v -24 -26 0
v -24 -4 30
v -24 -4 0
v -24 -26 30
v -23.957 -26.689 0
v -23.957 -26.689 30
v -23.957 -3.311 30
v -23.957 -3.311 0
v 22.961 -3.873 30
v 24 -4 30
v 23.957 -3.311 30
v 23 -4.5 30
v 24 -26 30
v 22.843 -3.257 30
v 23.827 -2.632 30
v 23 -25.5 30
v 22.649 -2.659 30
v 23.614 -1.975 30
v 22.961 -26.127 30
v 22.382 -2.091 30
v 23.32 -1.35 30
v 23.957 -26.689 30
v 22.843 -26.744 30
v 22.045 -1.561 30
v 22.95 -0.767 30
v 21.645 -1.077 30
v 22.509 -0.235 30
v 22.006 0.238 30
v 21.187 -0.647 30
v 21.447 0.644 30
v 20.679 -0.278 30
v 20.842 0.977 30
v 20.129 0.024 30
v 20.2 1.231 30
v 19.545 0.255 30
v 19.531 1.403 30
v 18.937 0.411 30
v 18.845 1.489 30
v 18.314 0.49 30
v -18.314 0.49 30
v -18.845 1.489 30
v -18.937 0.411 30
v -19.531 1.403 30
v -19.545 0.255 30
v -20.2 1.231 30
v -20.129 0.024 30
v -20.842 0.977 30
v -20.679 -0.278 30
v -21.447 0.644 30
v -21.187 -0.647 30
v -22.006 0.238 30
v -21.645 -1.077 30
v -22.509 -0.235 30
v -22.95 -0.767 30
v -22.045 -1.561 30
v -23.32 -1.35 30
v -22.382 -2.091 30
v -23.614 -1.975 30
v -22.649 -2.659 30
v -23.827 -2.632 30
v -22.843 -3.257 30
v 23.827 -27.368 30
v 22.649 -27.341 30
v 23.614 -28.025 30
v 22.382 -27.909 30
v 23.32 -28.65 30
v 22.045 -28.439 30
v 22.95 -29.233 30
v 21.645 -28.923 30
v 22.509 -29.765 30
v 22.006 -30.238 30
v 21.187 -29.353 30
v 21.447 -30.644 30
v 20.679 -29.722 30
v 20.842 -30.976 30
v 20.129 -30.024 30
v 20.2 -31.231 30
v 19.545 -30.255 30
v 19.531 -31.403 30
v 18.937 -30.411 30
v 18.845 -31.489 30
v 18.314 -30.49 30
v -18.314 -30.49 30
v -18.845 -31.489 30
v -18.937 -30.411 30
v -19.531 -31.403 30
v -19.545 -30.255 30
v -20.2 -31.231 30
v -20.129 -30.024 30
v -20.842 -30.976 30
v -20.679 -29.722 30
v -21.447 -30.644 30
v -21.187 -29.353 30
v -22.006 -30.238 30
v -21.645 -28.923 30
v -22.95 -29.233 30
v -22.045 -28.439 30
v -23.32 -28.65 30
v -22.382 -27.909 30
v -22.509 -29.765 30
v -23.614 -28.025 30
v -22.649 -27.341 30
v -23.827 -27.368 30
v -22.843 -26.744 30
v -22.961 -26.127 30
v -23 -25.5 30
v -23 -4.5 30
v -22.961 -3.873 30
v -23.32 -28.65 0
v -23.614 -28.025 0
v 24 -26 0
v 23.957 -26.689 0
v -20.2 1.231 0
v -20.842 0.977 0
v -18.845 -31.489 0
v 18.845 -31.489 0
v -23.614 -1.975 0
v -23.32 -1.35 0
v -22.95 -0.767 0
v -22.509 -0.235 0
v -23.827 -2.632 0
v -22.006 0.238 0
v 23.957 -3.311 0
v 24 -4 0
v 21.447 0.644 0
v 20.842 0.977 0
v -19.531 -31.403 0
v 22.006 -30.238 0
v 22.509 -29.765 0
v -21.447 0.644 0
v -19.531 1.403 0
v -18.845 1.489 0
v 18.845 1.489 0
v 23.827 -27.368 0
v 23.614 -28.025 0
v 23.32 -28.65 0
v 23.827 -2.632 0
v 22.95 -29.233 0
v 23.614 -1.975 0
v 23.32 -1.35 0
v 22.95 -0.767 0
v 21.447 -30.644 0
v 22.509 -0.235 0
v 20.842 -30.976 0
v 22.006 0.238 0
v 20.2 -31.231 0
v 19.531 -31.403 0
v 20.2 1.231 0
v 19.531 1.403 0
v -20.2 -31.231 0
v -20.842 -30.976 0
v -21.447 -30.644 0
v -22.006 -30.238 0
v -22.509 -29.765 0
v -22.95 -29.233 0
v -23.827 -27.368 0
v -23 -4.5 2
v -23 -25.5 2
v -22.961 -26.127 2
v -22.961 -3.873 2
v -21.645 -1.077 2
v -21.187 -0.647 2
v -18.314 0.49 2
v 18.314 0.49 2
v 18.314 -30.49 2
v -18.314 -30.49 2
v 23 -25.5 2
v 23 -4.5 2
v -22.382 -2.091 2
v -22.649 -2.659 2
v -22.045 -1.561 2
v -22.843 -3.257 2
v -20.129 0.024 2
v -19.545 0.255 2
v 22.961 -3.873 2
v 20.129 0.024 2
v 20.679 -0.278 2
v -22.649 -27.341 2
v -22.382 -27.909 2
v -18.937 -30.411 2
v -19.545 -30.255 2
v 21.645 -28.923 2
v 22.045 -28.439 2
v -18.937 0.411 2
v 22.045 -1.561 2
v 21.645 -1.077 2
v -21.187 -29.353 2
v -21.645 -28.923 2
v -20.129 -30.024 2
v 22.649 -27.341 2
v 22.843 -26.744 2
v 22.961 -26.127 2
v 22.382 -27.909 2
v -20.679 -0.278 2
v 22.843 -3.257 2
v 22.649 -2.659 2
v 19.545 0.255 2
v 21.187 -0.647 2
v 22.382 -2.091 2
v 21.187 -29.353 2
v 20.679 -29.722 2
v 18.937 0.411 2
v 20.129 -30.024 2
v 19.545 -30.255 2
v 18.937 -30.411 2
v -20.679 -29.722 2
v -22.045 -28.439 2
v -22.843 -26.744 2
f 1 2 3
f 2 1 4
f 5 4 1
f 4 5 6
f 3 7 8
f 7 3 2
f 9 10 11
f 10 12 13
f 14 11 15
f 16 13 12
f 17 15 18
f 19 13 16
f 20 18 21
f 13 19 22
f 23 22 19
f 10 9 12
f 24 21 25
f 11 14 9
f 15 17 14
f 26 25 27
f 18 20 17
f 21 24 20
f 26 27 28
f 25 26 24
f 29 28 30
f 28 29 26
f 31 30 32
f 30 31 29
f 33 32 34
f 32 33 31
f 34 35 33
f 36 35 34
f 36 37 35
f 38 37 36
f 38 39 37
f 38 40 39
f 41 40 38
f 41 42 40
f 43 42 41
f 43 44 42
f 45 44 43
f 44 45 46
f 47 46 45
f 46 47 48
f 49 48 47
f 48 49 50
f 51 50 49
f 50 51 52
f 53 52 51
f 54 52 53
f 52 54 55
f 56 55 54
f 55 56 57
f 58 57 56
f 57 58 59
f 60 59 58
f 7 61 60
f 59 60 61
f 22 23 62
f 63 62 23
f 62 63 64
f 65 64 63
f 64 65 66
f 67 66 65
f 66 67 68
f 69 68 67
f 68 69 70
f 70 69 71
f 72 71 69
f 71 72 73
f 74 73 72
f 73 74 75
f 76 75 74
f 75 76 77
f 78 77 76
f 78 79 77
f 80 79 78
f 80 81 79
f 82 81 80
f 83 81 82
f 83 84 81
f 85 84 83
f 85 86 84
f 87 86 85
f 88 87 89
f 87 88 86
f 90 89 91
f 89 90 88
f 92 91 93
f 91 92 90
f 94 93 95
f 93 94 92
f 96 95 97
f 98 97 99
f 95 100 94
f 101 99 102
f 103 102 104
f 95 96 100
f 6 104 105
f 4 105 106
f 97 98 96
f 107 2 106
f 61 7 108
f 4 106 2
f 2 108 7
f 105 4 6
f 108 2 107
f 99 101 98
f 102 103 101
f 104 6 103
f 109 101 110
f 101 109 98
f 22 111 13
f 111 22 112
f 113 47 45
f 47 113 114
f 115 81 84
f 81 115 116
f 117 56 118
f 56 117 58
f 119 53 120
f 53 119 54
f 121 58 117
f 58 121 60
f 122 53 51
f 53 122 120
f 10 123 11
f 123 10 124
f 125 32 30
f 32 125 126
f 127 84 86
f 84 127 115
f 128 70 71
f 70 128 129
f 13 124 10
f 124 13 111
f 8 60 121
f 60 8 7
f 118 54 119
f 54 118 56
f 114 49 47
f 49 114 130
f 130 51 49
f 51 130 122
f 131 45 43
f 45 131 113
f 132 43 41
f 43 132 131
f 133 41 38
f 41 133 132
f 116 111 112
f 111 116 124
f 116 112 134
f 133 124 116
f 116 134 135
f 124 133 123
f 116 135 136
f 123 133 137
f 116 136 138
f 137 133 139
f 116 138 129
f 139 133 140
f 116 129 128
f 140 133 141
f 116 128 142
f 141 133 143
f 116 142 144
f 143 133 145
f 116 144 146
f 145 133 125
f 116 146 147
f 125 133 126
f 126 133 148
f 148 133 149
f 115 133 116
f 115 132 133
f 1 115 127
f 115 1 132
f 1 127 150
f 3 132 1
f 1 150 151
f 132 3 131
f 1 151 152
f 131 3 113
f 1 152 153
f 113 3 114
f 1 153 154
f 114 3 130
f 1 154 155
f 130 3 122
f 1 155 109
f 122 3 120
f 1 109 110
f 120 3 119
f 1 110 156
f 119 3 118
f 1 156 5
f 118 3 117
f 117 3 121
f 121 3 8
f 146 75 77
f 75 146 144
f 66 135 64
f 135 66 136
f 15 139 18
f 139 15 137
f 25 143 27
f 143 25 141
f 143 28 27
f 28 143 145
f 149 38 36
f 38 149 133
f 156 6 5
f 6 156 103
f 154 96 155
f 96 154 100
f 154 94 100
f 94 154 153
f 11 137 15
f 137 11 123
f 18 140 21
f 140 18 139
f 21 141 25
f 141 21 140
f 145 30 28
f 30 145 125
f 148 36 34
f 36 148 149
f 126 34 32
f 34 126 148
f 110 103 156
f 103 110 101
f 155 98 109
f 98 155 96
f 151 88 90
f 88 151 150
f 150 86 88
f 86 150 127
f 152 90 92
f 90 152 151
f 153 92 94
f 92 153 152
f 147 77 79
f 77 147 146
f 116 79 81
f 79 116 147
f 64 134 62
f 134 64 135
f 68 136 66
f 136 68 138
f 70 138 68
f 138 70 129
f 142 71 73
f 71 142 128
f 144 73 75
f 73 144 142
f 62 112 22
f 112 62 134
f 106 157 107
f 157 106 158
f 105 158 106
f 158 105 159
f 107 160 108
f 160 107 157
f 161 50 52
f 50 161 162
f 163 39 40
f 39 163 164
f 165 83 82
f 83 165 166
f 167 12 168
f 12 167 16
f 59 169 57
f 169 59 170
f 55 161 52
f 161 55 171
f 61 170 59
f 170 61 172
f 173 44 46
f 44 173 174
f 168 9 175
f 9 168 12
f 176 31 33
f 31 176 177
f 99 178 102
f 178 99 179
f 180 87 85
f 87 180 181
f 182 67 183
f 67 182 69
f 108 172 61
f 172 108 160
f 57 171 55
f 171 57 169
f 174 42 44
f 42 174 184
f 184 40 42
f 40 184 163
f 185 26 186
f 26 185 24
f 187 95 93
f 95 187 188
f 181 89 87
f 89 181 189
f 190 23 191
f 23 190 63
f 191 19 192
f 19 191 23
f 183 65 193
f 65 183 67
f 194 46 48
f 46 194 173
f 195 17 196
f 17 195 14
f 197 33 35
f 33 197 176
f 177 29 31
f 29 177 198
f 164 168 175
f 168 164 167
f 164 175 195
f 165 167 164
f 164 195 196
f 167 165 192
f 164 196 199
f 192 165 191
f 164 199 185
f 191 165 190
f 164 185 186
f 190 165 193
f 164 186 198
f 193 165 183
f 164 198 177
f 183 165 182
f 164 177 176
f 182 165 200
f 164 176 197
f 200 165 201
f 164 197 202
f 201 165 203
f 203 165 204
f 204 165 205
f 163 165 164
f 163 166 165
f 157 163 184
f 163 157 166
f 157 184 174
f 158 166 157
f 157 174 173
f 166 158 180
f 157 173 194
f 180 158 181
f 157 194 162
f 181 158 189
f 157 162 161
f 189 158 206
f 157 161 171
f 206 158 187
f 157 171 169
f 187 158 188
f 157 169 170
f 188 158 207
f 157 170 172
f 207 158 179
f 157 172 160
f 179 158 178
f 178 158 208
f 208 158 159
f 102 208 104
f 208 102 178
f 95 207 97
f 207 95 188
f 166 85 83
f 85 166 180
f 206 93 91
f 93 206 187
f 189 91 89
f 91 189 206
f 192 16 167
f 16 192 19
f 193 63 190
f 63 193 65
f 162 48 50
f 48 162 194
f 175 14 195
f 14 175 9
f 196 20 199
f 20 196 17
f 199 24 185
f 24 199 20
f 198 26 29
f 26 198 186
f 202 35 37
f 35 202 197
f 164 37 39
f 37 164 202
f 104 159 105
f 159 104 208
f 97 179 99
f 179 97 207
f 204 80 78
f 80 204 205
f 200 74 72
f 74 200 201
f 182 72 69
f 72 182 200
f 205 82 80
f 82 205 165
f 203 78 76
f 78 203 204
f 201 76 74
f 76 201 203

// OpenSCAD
$fn = 50;


difference() {
	union() {
		translate(v = [0, -15.0000000000, 0]) {
			hull() {
				translate(v = [-18.5000000000, 11.0000000000, 0]) {
					cylinder(h = 30, r = 5.5000000000);
				}
				translate(v = [18.5000000000, 11.0000000000, 0]) {
					cylinder(h = 30, r = 5.5000000000);
				}
				translate(v = [-18.5000000000, -11.0000000000, 0]) {
					cylinder(h = 30, r = 5.5000000000);
				}
				translate(v = [18.5000000000, -11.0000000000, 0]) {
					cylinder(h = 30, r = 5.5000000000);
				}
			}
		}
	}
	union() {
		translate(v = [0, -15.0000000000, 2]) {
			hull() {
				translate(v = [-18.0000000000, 10.5000000000, 0]) {
					cylinder(h = 60, r = 5);
				}
				translate(v = [18.0000000000, 10.5000000000, 0]) {
					cylinder(h = 60, r = 5);
				}
				translate(v = [-18.0000000000, -10.5000000000, 0]) {
					cylinder(h = 60, r = 5);
				}
				translate(v = [18.0000000000, -10.5000000000, 0]) {
					cylinder(h = 60, r = 5);
				}
			}
		}
	}
}
